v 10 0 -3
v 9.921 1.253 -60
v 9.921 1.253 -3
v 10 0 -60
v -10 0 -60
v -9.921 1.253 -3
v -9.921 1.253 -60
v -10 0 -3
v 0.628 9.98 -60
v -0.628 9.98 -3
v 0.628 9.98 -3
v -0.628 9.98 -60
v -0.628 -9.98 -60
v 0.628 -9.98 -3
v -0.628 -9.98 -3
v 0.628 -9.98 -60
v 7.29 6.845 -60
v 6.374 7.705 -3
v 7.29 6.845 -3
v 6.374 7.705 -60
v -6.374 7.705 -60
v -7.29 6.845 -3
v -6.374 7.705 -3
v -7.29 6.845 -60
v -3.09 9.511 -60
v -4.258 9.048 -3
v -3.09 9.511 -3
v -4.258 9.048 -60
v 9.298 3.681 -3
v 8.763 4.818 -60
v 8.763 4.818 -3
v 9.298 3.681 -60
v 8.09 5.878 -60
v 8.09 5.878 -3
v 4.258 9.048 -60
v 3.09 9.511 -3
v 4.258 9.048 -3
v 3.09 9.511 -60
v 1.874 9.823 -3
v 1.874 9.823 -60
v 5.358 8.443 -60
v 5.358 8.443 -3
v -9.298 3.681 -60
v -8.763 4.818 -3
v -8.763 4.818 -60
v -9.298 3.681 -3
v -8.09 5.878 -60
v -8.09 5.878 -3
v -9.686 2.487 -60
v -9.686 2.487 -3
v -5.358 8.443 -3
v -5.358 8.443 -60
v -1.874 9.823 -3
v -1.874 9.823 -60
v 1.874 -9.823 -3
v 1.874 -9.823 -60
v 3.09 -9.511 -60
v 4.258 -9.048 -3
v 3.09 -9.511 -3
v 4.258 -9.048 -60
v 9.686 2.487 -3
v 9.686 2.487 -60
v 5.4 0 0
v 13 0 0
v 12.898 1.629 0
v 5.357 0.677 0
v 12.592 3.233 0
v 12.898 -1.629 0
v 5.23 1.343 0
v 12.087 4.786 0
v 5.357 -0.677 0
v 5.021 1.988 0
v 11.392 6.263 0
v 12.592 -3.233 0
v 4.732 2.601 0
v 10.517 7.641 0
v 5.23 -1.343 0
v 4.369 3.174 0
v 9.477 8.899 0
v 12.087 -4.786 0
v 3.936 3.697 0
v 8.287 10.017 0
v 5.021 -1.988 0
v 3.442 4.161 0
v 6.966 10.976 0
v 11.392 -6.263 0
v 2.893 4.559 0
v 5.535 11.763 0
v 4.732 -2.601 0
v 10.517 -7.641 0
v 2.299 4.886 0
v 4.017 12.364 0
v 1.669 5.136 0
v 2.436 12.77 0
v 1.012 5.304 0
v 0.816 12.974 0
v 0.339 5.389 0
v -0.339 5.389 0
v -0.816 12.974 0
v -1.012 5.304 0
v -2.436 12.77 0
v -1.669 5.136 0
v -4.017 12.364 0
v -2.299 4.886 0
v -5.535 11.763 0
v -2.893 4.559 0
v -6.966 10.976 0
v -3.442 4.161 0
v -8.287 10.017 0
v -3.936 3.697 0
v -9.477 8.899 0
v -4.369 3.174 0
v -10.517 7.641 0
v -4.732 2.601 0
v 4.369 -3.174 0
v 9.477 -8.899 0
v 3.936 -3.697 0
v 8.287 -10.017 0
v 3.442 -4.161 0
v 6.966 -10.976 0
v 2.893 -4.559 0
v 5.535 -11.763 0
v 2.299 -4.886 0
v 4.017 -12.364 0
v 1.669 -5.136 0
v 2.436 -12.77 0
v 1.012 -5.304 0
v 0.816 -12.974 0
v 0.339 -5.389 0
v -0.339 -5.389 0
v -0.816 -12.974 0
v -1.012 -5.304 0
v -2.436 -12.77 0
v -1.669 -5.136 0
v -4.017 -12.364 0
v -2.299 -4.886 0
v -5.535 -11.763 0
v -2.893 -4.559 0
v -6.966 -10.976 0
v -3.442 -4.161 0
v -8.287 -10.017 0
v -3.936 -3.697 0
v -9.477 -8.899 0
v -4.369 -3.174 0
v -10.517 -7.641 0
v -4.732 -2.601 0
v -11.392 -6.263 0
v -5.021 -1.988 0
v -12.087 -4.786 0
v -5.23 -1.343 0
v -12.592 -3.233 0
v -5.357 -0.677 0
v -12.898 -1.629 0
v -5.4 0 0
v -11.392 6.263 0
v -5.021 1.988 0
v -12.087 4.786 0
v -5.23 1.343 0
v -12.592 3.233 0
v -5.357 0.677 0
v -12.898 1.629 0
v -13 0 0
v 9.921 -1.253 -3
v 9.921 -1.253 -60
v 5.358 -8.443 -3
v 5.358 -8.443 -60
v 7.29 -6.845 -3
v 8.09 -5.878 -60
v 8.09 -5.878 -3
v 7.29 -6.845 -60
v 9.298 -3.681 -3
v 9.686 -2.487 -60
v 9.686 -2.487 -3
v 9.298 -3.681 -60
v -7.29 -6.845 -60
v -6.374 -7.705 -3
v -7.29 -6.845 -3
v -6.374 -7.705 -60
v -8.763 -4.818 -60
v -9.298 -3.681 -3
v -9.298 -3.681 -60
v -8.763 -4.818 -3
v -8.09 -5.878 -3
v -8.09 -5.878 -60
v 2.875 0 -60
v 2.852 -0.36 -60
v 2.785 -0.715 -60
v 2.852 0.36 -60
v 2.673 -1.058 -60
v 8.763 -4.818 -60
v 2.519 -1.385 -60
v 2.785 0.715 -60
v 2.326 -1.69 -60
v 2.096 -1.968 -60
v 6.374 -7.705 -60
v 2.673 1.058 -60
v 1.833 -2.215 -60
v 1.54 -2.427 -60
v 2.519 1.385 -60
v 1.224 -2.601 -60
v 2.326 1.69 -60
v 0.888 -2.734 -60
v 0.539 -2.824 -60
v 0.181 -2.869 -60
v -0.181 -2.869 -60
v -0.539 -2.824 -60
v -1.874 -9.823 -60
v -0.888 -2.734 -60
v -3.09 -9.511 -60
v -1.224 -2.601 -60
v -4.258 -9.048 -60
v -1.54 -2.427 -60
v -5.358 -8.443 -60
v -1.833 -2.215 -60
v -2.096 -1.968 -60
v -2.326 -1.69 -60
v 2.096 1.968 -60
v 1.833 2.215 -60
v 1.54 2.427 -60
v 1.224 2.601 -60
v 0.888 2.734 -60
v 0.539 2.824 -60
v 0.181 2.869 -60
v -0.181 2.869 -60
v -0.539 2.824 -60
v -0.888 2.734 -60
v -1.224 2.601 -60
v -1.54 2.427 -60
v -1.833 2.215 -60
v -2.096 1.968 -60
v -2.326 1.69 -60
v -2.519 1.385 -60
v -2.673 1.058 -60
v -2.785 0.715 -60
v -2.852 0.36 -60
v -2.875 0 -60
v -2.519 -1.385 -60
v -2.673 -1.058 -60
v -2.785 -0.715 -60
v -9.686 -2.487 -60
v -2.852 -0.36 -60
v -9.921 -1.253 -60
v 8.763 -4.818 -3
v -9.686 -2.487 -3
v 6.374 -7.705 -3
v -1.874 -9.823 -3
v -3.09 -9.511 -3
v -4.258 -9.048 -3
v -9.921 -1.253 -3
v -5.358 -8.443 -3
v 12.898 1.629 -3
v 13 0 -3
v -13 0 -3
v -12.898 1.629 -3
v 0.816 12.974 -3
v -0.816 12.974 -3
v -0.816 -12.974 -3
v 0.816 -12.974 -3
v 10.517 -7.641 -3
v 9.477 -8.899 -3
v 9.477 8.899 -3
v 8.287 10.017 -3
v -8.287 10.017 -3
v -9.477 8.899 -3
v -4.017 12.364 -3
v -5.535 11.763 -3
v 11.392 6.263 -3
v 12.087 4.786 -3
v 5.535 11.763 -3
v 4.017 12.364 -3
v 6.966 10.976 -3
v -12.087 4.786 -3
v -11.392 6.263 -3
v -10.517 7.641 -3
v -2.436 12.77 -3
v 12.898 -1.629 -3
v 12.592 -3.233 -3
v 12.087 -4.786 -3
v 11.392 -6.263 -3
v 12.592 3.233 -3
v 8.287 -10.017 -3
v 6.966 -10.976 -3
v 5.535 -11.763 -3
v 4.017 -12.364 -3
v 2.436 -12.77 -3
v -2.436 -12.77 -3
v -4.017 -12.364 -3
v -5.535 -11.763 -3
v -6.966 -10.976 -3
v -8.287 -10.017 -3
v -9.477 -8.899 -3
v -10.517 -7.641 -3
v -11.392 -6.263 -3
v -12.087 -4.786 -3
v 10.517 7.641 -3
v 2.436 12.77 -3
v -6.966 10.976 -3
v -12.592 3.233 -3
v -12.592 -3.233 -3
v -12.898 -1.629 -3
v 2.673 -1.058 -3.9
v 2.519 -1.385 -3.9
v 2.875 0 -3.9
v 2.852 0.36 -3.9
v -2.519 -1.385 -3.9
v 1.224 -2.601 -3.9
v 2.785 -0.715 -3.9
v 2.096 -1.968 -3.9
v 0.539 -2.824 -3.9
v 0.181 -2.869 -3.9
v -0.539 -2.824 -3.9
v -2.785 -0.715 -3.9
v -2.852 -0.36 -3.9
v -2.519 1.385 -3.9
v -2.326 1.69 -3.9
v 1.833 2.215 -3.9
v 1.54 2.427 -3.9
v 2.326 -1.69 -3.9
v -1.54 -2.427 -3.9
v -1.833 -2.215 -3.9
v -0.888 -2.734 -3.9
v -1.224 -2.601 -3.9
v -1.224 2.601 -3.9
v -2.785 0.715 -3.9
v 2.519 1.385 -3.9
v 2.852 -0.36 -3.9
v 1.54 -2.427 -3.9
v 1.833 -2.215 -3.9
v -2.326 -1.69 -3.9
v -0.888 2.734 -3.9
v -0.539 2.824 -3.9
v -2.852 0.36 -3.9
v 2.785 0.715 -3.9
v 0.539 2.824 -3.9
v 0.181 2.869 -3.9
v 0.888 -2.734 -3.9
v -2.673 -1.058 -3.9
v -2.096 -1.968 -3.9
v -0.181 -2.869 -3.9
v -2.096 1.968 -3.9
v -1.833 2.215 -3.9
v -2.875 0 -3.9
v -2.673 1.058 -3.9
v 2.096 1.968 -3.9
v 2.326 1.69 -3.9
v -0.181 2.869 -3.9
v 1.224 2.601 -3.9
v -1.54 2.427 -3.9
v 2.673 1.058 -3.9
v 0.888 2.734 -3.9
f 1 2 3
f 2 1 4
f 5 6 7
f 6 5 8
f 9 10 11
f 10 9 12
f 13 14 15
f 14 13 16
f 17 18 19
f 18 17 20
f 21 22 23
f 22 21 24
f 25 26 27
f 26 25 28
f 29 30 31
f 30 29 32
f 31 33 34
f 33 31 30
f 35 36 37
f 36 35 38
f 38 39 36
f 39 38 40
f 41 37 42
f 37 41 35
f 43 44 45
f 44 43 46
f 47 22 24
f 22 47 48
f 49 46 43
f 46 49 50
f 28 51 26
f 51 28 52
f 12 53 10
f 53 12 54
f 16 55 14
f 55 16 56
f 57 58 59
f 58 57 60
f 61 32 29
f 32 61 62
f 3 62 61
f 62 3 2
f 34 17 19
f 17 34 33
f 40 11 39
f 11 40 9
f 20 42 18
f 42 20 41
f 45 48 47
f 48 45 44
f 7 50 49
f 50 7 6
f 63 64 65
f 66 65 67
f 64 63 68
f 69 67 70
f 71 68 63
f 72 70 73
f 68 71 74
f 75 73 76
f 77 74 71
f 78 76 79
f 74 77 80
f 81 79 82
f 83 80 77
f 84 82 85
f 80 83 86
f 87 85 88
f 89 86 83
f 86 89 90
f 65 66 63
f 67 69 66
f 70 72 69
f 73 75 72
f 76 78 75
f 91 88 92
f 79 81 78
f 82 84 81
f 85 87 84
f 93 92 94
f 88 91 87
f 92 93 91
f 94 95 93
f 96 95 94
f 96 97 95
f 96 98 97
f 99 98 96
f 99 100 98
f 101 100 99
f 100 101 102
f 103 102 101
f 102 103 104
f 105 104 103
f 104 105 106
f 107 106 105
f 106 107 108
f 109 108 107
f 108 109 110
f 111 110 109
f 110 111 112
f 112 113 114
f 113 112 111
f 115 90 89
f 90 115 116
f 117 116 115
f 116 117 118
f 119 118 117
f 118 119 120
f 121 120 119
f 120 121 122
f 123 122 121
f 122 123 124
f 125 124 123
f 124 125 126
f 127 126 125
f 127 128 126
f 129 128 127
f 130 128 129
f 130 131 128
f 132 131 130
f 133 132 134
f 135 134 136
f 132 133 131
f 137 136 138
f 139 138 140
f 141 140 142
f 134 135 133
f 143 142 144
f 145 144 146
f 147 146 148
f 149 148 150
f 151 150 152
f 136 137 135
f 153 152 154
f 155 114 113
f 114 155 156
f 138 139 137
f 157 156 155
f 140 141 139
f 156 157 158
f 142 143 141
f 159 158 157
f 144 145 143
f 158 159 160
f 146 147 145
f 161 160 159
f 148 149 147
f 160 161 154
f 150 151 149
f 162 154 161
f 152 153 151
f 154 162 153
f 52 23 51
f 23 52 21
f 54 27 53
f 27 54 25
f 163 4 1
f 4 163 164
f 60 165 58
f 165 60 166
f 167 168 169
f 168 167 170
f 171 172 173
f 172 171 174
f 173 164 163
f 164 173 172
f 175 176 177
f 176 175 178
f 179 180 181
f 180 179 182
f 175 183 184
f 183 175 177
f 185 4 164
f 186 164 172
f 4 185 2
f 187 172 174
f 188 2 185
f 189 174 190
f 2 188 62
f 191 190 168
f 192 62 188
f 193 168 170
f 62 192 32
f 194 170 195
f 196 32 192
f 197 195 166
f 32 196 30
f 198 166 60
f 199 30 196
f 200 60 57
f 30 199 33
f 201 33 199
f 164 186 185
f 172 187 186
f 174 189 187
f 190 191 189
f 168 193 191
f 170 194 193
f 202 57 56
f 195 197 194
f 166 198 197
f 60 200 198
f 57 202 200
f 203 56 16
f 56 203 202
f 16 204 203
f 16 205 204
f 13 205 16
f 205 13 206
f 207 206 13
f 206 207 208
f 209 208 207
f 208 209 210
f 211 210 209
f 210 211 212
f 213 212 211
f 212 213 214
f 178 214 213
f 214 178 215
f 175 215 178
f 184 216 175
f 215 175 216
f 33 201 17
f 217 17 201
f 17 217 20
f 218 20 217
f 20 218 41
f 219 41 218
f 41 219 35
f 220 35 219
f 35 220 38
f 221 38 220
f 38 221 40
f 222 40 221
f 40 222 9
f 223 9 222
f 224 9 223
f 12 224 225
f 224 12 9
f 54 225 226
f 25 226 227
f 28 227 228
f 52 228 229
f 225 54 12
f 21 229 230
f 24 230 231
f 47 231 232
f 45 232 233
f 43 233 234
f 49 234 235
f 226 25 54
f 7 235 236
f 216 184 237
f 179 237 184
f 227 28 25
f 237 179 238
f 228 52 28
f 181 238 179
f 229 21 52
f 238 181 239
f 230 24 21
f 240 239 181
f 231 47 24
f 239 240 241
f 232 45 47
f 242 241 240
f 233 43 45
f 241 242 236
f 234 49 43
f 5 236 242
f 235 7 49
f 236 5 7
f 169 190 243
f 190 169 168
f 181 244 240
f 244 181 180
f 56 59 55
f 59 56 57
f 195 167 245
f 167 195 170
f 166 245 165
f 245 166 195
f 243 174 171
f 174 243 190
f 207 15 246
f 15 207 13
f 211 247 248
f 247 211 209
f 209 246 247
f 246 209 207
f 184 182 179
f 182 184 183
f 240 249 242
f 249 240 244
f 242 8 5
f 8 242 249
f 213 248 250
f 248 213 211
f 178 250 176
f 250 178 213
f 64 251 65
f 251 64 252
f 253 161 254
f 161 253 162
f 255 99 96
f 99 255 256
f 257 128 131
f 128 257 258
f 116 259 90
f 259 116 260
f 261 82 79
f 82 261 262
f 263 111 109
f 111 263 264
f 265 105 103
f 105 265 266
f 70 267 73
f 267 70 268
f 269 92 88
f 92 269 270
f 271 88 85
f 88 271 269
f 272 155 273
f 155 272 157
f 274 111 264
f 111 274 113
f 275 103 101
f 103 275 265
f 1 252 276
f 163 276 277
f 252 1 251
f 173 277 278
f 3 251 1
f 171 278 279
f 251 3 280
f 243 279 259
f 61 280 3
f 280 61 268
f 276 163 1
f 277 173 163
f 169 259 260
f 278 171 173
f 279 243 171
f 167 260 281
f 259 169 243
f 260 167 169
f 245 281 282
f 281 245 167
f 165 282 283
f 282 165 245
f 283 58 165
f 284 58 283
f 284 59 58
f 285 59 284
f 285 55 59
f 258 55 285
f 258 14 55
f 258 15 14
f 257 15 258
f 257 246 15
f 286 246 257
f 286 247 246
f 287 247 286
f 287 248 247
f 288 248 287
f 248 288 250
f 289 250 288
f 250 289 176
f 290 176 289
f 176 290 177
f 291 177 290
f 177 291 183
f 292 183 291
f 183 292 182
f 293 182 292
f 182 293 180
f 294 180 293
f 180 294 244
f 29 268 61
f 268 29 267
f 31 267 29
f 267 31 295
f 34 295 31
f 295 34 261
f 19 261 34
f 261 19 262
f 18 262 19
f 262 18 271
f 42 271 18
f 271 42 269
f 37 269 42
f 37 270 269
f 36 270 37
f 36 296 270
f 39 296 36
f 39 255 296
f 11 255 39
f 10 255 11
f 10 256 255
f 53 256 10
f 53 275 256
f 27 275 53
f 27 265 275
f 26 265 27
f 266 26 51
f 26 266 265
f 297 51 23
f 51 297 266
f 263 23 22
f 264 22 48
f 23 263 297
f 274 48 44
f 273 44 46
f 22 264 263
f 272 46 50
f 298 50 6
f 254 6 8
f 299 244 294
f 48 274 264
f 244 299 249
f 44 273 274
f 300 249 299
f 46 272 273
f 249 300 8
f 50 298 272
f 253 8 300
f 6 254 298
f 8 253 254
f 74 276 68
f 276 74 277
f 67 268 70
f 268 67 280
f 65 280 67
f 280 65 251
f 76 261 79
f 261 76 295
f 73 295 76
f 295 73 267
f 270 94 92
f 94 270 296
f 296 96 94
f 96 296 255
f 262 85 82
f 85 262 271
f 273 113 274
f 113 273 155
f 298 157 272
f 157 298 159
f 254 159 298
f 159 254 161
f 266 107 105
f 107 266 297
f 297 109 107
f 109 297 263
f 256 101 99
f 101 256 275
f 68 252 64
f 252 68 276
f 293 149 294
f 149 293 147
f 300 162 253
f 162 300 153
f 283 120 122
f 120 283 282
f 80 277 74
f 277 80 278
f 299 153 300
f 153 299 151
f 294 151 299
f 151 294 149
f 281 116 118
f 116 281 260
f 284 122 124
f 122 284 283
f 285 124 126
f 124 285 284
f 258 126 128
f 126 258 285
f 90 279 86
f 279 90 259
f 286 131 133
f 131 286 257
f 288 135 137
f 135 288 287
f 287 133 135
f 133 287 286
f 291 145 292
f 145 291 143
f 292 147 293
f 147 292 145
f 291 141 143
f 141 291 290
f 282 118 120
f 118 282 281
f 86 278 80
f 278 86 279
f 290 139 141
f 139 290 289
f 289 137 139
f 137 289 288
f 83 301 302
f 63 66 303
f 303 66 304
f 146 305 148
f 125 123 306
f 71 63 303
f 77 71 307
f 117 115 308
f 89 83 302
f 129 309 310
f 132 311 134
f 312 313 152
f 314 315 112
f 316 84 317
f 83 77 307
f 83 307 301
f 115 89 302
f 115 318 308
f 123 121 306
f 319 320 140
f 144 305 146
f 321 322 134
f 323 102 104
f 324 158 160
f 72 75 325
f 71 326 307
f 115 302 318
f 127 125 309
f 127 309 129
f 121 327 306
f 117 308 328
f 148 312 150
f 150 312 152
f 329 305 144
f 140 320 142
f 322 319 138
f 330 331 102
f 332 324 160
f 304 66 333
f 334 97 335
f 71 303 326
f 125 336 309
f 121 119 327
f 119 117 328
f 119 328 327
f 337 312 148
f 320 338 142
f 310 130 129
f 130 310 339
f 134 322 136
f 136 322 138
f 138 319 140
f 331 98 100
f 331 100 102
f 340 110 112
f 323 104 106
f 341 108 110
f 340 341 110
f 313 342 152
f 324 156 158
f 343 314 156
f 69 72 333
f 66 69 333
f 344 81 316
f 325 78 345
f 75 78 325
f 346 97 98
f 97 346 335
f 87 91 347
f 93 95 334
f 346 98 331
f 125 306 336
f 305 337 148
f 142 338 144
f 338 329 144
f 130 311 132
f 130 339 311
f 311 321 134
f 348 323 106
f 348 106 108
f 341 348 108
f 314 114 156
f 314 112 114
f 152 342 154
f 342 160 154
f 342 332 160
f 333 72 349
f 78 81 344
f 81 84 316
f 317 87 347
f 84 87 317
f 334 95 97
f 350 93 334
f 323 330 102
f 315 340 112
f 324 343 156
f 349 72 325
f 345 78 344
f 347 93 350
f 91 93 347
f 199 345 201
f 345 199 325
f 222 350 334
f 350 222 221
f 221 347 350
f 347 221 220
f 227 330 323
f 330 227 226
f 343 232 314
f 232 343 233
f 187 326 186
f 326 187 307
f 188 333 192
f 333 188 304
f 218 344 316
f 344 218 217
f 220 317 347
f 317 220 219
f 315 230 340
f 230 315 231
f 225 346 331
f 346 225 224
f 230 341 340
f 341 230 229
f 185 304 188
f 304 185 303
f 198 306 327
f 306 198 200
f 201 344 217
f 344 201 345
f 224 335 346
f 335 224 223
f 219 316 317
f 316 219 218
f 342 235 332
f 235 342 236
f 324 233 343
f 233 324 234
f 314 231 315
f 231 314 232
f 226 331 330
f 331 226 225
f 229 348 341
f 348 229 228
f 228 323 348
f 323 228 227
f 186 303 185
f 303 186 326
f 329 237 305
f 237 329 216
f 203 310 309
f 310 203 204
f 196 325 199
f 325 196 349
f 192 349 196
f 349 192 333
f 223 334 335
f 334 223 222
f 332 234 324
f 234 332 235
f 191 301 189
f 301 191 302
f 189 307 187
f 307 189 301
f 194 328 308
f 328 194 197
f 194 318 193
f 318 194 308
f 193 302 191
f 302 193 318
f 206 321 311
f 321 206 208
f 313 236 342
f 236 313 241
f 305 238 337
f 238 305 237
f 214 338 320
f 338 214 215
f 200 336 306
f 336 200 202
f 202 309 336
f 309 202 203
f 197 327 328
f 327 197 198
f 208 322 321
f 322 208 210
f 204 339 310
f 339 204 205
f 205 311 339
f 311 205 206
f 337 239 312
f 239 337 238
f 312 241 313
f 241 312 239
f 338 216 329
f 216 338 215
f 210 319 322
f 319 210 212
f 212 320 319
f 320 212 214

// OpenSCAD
$fn = 50;


difference() {
	union() {
		translate(v = [0, 0, -60.0000000000]) {
			cylinder(h = 60, r = 10.0000000000);
		}
		translate(v = [0, 0, -3.0000000000]) {
			cylinder(h = 3, r = 13.0000000000);
		}
	}
	union() {
		translate(v = [0, 0, 0]) {
			rotate(a = [0, 0, 0]) {
				difference() {
					union() {
						#translate(v = [0, 0, -60.0000000000]) {
							cylinder(h = 60, r = 2.6000000000);
						}
						#translate(v = [0, 0, -3.9000000000]) {
							cylinder(h = 3.9000000000, r1 = 2.8750000000, r2 = 5.4000000000);
						}
						#translate(v = [0, 0, -60.0000000000]) {
							cylinder(h = 60, r = 2.8750000000);
						}
						#translate(v = [0, 0, -60.0000000000]) {
							cylinder(h = 60, r = 2.6000000000);
						}
					}
					union();
				}
			}
		}
	}
}
